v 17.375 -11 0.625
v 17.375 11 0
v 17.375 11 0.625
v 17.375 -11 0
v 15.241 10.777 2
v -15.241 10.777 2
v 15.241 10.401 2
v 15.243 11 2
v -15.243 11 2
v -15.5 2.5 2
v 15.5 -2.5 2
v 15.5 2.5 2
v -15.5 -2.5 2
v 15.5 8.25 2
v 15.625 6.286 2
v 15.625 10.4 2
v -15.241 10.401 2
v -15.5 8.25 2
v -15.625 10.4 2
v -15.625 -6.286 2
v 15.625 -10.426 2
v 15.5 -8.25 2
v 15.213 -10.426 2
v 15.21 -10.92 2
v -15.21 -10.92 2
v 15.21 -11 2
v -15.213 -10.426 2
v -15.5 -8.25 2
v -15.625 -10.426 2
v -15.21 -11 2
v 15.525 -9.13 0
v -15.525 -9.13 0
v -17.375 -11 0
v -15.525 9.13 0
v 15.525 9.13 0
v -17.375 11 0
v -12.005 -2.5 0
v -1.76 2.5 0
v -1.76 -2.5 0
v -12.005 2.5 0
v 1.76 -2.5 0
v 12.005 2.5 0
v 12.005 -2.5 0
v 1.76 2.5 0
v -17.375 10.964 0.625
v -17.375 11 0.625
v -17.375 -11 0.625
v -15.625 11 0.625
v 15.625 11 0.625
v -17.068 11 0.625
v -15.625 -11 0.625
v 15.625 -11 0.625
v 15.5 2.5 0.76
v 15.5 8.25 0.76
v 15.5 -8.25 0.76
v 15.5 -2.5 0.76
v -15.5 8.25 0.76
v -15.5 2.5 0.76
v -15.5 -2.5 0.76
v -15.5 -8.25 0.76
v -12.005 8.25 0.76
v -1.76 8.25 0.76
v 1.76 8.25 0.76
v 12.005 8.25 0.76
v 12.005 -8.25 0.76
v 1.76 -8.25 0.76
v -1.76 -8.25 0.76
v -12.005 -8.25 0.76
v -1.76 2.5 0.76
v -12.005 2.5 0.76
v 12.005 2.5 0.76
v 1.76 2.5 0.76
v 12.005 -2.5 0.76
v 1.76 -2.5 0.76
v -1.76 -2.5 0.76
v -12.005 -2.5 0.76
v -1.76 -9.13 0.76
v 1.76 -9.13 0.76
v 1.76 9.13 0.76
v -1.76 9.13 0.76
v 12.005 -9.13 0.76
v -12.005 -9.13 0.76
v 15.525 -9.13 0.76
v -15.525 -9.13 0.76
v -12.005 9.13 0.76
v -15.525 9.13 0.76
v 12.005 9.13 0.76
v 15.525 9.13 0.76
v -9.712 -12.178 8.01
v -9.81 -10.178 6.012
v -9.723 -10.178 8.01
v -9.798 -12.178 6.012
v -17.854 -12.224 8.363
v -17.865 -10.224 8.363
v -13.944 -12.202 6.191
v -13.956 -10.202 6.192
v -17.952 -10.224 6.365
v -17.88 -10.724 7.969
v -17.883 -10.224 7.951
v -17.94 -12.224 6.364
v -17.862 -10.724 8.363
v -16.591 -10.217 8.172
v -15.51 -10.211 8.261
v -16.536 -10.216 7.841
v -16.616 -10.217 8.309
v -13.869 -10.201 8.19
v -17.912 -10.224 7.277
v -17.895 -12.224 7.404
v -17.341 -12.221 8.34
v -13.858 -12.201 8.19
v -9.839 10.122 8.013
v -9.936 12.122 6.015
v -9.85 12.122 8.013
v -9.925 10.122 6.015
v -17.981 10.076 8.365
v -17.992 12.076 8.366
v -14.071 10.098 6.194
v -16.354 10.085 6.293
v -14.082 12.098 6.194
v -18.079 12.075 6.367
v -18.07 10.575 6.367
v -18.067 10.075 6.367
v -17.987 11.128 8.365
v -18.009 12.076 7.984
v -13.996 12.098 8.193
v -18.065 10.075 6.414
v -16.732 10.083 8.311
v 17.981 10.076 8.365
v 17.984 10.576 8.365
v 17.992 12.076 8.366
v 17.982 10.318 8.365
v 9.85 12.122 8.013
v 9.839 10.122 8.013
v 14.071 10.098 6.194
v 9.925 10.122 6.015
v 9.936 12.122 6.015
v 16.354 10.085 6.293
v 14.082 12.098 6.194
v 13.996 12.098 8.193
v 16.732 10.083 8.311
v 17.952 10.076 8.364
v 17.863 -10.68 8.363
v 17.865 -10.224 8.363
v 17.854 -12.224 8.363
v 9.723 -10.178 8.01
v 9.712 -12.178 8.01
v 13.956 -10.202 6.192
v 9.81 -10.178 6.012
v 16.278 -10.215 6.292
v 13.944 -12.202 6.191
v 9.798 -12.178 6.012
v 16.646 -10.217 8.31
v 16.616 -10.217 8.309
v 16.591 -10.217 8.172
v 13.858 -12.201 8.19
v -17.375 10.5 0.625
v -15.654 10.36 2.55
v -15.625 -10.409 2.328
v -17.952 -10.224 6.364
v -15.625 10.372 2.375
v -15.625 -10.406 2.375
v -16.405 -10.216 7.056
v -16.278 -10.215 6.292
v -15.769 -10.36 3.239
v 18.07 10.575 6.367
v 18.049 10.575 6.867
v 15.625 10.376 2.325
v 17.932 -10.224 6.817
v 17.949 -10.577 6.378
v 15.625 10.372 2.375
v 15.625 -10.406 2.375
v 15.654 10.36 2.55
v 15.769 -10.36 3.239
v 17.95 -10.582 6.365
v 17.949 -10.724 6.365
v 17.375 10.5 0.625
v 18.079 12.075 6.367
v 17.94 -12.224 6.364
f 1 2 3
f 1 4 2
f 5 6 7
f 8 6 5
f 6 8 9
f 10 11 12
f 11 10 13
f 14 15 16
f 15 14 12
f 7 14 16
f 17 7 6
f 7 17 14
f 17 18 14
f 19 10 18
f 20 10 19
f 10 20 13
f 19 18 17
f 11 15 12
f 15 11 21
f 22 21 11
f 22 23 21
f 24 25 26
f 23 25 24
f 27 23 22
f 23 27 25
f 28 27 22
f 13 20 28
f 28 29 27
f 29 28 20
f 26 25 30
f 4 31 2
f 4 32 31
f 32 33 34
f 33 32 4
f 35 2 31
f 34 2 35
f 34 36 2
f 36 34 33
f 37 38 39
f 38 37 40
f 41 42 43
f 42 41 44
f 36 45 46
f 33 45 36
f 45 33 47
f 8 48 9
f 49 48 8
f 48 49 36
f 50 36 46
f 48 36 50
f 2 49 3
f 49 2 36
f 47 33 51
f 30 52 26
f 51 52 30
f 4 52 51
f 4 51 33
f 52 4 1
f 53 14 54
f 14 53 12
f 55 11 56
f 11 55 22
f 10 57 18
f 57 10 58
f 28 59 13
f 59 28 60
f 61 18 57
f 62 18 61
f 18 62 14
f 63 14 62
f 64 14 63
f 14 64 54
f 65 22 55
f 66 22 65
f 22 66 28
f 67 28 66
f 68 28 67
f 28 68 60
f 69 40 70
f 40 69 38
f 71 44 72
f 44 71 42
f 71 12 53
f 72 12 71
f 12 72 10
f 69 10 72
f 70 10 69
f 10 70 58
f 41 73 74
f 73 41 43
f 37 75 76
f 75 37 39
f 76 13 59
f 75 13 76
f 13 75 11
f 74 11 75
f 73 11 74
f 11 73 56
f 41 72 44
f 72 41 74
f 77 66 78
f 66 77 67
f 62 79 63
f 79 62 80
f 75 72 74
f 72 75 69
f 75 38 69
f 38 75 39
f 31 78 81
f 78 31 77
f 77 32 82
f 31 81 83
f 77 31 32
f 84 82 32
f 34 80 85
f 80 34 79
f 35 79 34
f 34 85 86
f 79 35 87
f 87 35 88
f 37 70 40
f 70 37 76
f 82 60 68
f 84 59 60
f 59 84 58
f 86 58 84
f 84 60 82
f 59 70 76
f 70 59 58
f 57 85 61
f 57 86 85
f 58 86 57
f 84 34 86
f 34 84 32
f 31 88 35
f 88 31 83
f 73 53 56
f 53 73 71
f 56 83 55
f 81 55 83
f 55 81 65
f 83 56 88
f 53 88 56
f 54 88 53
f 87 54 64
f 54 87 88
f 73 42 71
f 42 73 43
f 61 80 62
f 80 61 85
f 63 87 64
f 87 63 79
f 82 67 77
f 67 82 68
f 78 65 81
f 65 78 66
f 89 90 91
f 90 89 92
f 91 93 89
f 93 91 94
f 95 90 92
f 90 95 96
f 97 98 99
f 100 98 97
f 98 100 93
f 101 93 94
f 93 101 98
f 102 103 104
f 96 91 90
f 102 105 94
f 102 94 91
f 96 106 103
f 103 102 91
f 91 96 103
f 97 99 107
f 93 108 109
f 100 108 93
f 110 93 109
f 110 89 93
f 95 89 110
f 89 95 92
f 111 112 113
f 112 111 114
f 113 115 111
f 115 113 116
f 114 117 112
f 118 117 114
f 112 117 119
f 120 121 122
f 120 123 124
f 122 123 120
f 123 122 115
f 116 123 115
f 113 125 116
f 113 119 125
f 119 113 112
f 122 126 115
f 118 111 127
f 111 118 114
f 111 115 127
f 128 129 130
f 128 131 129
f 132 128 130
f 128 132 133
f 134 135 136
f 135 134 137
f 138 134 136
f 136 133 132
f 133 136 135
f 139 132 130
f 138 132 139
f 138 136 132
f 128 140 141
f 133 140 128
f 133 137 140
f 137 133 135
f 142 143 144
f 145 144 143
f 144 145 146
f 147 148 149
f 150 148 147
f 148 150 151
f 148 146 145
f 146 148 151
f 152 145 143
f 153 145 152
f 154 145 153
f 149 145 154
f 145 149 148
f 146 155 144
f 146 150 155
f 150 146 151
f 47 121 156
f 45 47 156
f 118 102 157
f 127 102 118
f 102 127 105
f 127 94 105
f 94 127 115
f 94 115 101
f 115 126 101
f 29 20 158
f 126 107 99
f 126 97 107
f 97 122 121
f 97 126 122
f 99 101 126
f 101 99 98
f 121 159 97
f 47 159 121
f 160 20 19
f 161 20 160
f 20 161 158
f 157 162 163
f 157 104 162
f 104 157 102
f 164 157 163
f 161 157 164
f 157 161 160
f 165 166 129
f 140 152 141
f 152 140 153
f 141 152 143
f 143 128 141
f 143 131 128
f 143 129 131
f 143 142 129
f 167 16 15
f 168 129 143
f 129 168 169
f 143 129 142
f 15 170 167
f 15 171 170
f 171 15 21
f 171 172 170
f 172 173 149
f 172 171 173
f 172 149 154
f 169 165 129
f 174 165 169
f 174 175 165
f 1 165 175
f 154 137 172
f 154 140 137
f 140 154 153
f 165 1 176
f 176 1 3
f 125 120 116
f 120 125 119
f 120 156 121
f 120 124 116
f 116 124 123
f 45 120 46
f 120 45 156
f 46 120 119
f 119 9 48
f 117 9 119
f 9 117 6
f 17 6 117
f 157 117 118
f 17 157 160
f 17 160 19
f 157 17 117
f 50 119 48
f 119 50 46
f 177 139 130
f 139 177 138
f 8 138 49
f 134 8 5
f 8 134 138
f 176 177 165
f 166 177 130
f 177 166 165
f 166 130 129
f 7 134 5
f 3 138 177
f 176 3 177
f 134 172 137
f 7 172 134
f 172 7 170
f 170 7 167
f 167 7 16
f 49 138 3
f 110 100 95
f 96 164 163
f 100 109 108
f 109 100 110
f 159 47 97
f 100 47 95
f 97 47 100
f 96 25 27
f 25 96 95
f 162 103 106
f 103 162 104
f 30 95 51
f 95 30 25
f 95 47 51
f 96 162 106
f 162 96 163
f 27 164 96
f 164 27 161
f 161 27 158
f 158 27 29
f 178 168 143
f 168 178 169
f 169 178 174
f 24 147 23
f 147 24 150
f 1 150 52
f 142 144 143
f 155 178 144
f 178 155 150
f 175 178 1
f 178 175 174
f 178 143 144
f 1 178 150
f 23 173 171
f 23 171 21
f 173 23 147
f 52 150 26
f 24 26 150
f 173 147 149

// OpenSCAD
// file: ../scad-utils/so3.scad
// so3

use <linalg.scad>

function rodrigues_so3_exp(w, A, B) = [
[1.0 - B*(w[1]*w[1] + w[2]*w[2]), B*(w[0]*w[1]) - A*w[2],          B*(w[0]*w[2]) + A*w[1]],
[B*(w[0]*w[1]) + A*w[2],          1.0 - B*(w[0]*w[0] + w[2]*w[2]), B*(w[1]*w[2]) - A*w[0]],
[B*(w[0]*w[2]) - A*w[1],          B*(w[1]*w[2]) + A*w[0],          1.0 - B*(w[0]*w[0] + w[1]*w[1])]
];

function so3_exp(w) = so3_exp_rad(w/180*PI);
function so3_exp_rad(w) =
combine_so3_exp(w,
	w*w < 1e-8 
	? so3_exp_1(w*w)
	: w*w < 1e-6
	  ? so3_exp_2(w*w)
	  : so3_exp_3(w*w));

function combine_so3_exp(w,AB) = rodrigues_so3_exp(w,AB[0],AB[1]);

// Taylor series expansions close to 0
function so3_exp_1(theta_sq) = [
	1 - 1/6*theta_sq, 
	0.5
];

function so3_exp_2(theta_sq) = [
	1.0 - theta_sq * (1.0 - theta_sq/20) / 6,
	0.5 - 0.25/6 * theta_sq
];

function so3_exp_3_0(theta_deg, inv_theta) = [
	sin(theta_deg) * inv_theta,
	(1 - cos(theta_deg)) * (inv_theta * inv_theta)
];

function so3_exp_3(theta_sq) = so3_exp_3_0(sqrt(theta_sq)*180/PI, 1/sqrt(theta_sq));


function rot_axis_part(m) = [m[2][1] - m[1][2], m[0][2] - m[2][0], m[1][0] - m[0][1]]*0.5;

function so3_ln(m) = 180/PI*so3_ln_rad(m);
function so3_ln_rad(m) = so3_ln_0(m,
	cos_angle = rot_cos_angle(m),
	preliminary_result = rot_axis_part(m));

function so3_ln_0(m, cos_angle, preliminary_result) = 
so3_ln_1(m, cos_angle, preliminary_result, 
	sin_angle_abs = sqrt(preliminary_result*preliminary_result));

function so3_ln_1(m, cos_angle, preliminary_result, sin_angle_abs) = 
	cos_angle > sqrt(1/2)
	? sin_angle_abs > 0
	  ? preliminary_result * asin(sin_angle_abs)*PI/180 / sin_angle_abs
	  : preliminary_result
	: cos_angle > -sqrt(1/2)
	  ? preliminary_result * acos(cos_angle)*PI/180 / sin_angle_abs
	  : so3_get_symmetric_part_rotation(
	      preliminary_result,
	      m,
	      angle = PI - asin(sin_angle_abs)*PI/180,
	      d0 = m[0][0] - cos_angle,
	      d1 = m[1][1] - cos_angle,
	      d2 = m[2][2] - cos_angle
			);

function so3_get_symmetric_part_rotation(preliminary_result, m, angle, d0, d1, d2) =
so3_get_symmetric_part_rotation_0(preliminary_result,angle,so3_largest_column(m, d0, d1, d2));

function so3_get_symmetric_part_rotation_0(preliminary_result, angle, c_max) =
	angle * unit(c_max * preliminary_result < 0 ? -c_max : c_max);

function so3_largest_column(m, d0, d1, d2) =
		d0*d0 > d1*d1 && d0*d0 > d2*d2
		?	[d0, (m[1][0]+m[0][1])/2, (m[0][2]+m[2][0])/2]
		: d1*d1 > d2*d2
		  ? [(m[1][0]+m[0][1])/2, d1, (m[2][1]+m[1][2])/2]
		  : [(m[0][2]+m[2][0])/2, (m[2][1]+m[1][2])/2, d2];

__so3_test = [12,-125,110];
echo(UNITTEST_so3=norm(__so3_test-so3_ln(so3_exp(__so3_test))) < 1e-8);
// file: ../switch-and-keycap-specs.scad
mx_keyswitch_length = 13.97;
mx_keyhole_length = 14;
mx_switch_travel = 4.0;

xda_keycap_top_height = 15.0;
xda_keycap_width = 18.11;
xda_keycap_depth = 18.11;
xda_keycap_height = 8.5;
xda_keycap_thickness = 1;
xda_top_width = 13.66;
xda_top_depth = 13.66;
xda_top_corner_radius = 1.16;
xda_bottom_corner_radius = 0.57;

choc_switch_travel = 2.18;
choc_keyhole_length = 13.8;
choc_keycap_width = 17.6;
choc_keycap_depth = 16.6;
choc_keycap_height = 3.4;
choc_keycap_top_height = 9;
// file: ../scad-utils/lists.scad
// List helpers

/*!
  Flattens a list one level:

  flatten([[0,1],[2,3]]) => [0,1,2,3]
*/
function flatten(list) = [ for (i = list, v = i) v ];


/*!
  Creates a list from a range:

  range([0:2:6]) => [0,2,4,6]
*/
function range(r) = [ for(x=r) x ];

/*!
  Reverses a list:

  reverse([1,2,3]) => [3,2,1]
*/
function reverse(list) = [for (i = [len(list)-1:-1:0]) list[i]];

/*!
  Extracts a subarray from index begin (inclusive) to end (exclusive)
  FIXME: Change name to use list instead of array?

  subarray([1,2,3,4], 1, 2) => [2,3]
*/
function subarray(list,begin=0,end=-1) = [
    let(end = end < 0 ? len(list) : end)
      for (i = [begin : 1 : end-1])
        list[i]
];

/*!
  Returns a copy of a list with the element at index i set to x

  set([1,2,3,4], 2, 5) => [1,2,5,4]
*/
function set(list, i, x) = [for (i_=[0:len(list)-1]) i == i_ ? x : list[i_]];

/*!
  Remove element from the list by index.
  remove([4,3,2,1],1) => [4,2,1]
*/
function remove(list, i) = [for (i_=[0:1:len(list)-2]) list[i_ < i ? i_ : i_ + 1]];
// file: ../scad-utils/se3.scad
use <linalg.scad>
use <so3.scad>

function combine_se3_exp(w, ABt) = construct_Rt(rodrigues_so3_exp(w, ABt[0], ABt[1]), ABt[2]);

// [A,B,t]
function se3_exp_1(t,w) = concat(
	so3_exp_1(w*w),
	[t + 0.5 * cross(w,t)]
);

function se3_exp_2(t,w) = se3_exp_2_0(t,w,w*w);
function se3_exp_2_0(t,w,theta_sq) =
se3_exp_23(
	so3_exp_2(theta_sq),
	C = (1.0 - theta_sq/20) / 6,
	t=t,w=w);

function se3_exp_3(t,w) = se3_exp_3_0(t,w,sqrt(w*w)*180/PI,1/sqrt(w*w));

function se3_exp_3_0(t,w,theta_deg,inv_theta) =
se3_exp_23(
	so3_exp_3_0(theta_deg = theta_deg, inv_theta = inv_theta),
	C = (1 - sin(theta_deg) * inv_theta) * (inv_theta * inv_theta),
	t=t,w=w);

function se3_exp_23(AB,C,t,w) =
[AB[0], AB[1], t + AB[1] * cross(w,t) + C * cross(w,cross(w,t)) ];

function se3_exp(mu) = se3_exp_0(t=take3(mu),w=tail3(mu)/180*PI);

function se3_exp_0(t,w) =
combine_se3_exp(w,
// Evaluate by Taylor expansion when near 0
	w*w < 1e-8
	? se3_exp_1(t,w)
	: w*w < 1e-6
	  ? se3_exp_2(t,w)
	  : se3_exp_3(t,w)
);

function se3_ln(m) = se3_ln_to_deg(se3_ln_rad(m));
function se3_ln_to_deg(v) = concat(take3(v),tail3(v)*180/PI);

function se3_ln_rad(m) = se3_ln_0(m,
	rot = so3_ln_rad(rotation_part(m)));
function se3_ln_0(m,rot) = se3_ln_1(m,rot,
	theta = sqrt(rot*rot));
function se3_ln_1(m,rot,theta) = se3_ln_2(m,rot,theta,
	shtot = theta > 0.00001 ? sin(theta/2*180/PI)/theta : 0.5,
	halfrotator = so3_exp_rad(rot * -.5));
function se3_ln_2(m,rot,theta,shtot,halfrotator) =
concat( (halfrotator * translation_part(m) -
	(theta > 0.001
	? rot * ((translation_part(m) * rot) * (1-2*shtot) / (rot*rot))
	: rot * ((translation_part(m) * rot)/24)
	)) / (2 * shtot), rot);

__se3_test = [20,-40,60,-80,100,-120];
echo(UNITTEST_se3=norm(__se3_test-se3_ln(se3_exp(__se3_test))) < 1e-8);
// file: ../definitions.scad
use <scad-utils/linalg.scad>
use <scad-utils/transformations.scad>
include <switch-and-keycap-specs.scad>

X = [1, 0, 0];
Y = [0, 1, 0];
Z = [0, 0, 1];

switch_type = "choc";
keycap_type = "choc";

keyhole_length = choc_keyhole_length;
keycap_width   = choc_keycap_width;
keycap_depth   = choc_keycap_depth;
keycap_height  = choc_keycap_height;
cap_top_height = choc_keycap_top_height;

plate_thickness = 2.7;
plate_padding = [2.5, 2.5]; // horizontal and vertical padding around switches.
plate_dimensions = [
  keyhole_length + plate_padding.x,
  keyhole_length + plate_padding.y,
  plate_thickness
];

// overall space allotted for each keycap
mount_width = keycap_width + 1;
mount_depth = keycap_depth + 1;

// angle from key-to-key in a column (alpha) and column-to-column (beta)
alpha = 180/12;
beta = 180/36;

finger_row_radius = mount_depth / 2 / sin(alpha/2) + cap_top_height;
finger_column_radius = mount_width / 2 / sin(beta/2) + cap_top_height;
thumb_row_radius = mount_depth / 2 / sin(alpha/2) + cap_top_height;
thumb_column_radius = mount_width / 2 / sin(beta/2) + cap_top_height;

// Per-column offsets for finger keys.
finger_column_offset_index = [0, 0, 0];
finger_column_offset_index_stretch = [0, 0, 0];
finger_column_offset_middle = [0, 2.82, -3.0]; // was moved -4.5
finger_column_offset_ring = [0, 0, 0];
finger_column_offset_pinky = [0, -8, 5.64];
finger_column_offset_pinky_stretch = [0, -8, 5.64];
finger_column_offsets = [
  finger_column_offset_index_stretch,
  finger_column_offset_index,
  finger_column_offset_middle,
  finger_column_offset_ring,
  finger_column_offset_pinky,
  finger_column_offset_pinky_stretch
];

// Per-column selection of keys an their row positions.
// Values here don't need to be integers but they probably should be.
finger_columns = [
  [1, 2, 3],
  [1, 2, 3, 4],
  [1, 2, 3, 4],
  [1, 2, 3, 4],
  [1, 2, 3],
  [1, 2, 3]
];

// Per-column selection of thumb keys and their row positions.
// In this case because of the 2u keys there's need to use fractional values.
thumb_columns = [
  [-.5],
  [-.5, 1],
  [-1, 0, 1]
];

// Thumb overrides specify on a per-colum-index-and-row-index basis:
// * size multiplier (u and h)
// * rotation (in degrees)
// Note: this is only used for thumb keys and doesn't support the ergodox-style
// 1.25u outer pinky-column keys.
thumb_overrides = [
  [0, 0, 1, 2, 90],
  [1, 0, 1, 2, 90]
];

// Between the finger and thumb clusters is a column of LEDs positioned using
// finger key positioning and some additional offset and pivot.
led_transform = rotation([0, -60, 0]) * translation([-6, 0, 0]);

// LED size is used for $u and $h to scale the plate edge/corner pieces for
// easier and positioning.
led_size = 0.52;

// LED positioning is given with [col, row] pairs.
leds = [
  [-0.75, 0.82],
  [-0.75, 1.2],
  [-0.75, 1.58],
  [-0.75, 1.96]
];

// how thick to make the arm/clamp.
// I haven't tried other values as I didn't want to print one that's too weak
// and keep iterating. Wouldn't be a bad idea to render one and throw it into
// Fusion360 or something for finite element analysis, but I'm not an engineer.
desk_arm_thickness = 25;
desk_arm_trunc = 0.8;
desk_arm_radius = (desk_arm_thickness / 2) / desk_arm_trunc;

// These measurements are specific to the ball mount I bought.
ball_mount_diameter = 28.44;
ball_mount_height = 23.98;

// How thick to make the walls of the cylinder that the ball mount slides into.
// The desk arm actually screws into the ball mount base so this probably isn't
// adding to print strength at all.
ball_mount_socket_thickness = 3;

// What orientation should the ball mount have in the desk arm's socket.
// Tilting this gives you more clearance from the desk arm, but pay attention to
// your print orientation to ensure torque applied to the ball mount doesn't act
// on layer weakness.
ball_mount_base_orientation = identity4()
  * rotation([0, 0, 90])
  * rotation([50, 0, 0])
  * rotation([0, 0, 180]);

// What orientation to apply to things attached to the ball mount head.
// This doesn't affect printed parts directly but is useful for visualization.
ball_mount_pivot_orientation = identity4()
 * rotation([0, 30, 0]);

// The precise thickness isn't important if you want to secure the arm with a
// clamp (1/4" bolt). In fact, my preference is to leave a few millimetres of
// clearance so that you can augment your printed parts with grippier material:
// silicone/rubber sheet or even kitchen drawer liners can be used as a softer
// layer to avoid damaging the desk surface.
_DESK_THICKNESS_TURNSTONE_BIVI = 14.99; // my work desk
_DESK_THICKNESS_IKEA_SKARSTA = 22.28;   // my home desk
desk_thickness = _DESK_THICKNESS_IKEA_SKARSTA;
desk_available_depth = 68.98;

// Desired offset from ball mount base to the top (ignoring thickness) of desk.
desk_top_offset = [0, 50, 40];

// Desired offset from keyboard "origin" to bottom mount component.
keyboard_offset = rotation([0, -20, 0]) * translation([30, 5, -6]);

// Look up thumb overrides for given column and row index
function get_overrides (source, colIndex, rowIndex) = (
  let(matches = [
    for(vec=source)
    if (vec[0] == colIndex && vec[1] == rowIndex)
    [ vec[2], vec[3], vec[4] ]
  ])

  len(matches) > 0 ? matches[0] : [1, 1, 0]
);
// file: ../util.scad
_debug_colors = [
  "tomato",
  "peachpuff",
  "rosybrown",
  "yellowgreen",
  "mediumseagreen",
  "skyblue",
  "steelblue",
  "mediumorchid",
  "slategray"
];

module debug(i) {
  if (!is_undef($debug) && $debug != false) {
    color(_debug_colors[i % len(_debug_colors)])
    children();
  } else {
    children();
  }
}

module triangle_hulls() {
  for (i=[0:$children - 3]) {
    debug(i)
    hull() {
      children(i);
      children(i+1);
      children(i+2);
    }
  }
}

module serial_hulls(close=false) {
  for (i=[0:$children-2]) {
    debug(i)
    hull() {
      children(i);
      children(i+1);
    }
  }

  if (close) {
    hull() {
      children(0);
      children($children - 1);
    }
  }
}

module mirror_axes(axes) {
  children();
  for (axis=axes)
    mirror(axis)
      children();
}
// file: ../positioning.scad
use <scad-utils/transformations.scad>
use <scad-utils/linalg.scad>
include <definitions.scad>


module finger_place(column, row) {
  transformation = finger_place_transformation(column, row);
  multmatrix(transformation)
    children();
}

module finger_corner_nw(col, row) { finger_place(col, row) translate([-plate_width/2, plate_height/2, 0]) children(); }
module finger_corner_ne(col, row) { finger_place(col, row) translate([plate_width/2, plate_height/2, 0]) children(); }
module finger_corner_se(col, row) { finger_place(col, row) translate([plate_width/2, -plate_height/2, 0]) children(); }
module finger_corner_sw(col, row) { finger_place(col, row) translate([-plate_width/2, -plate_height/2, 0]) children(); }

module finger_edge_n(col, row) { finger_place(col, row) translate([0, plate_height/2, 0]) children(); }
module finger_edge_e(col, row) { finger_place(col, row) translate([plate_width/2, 0, 0]) children(); }
module finger_edge_s(col, row) { finger_place(col, row) translate([0, -plate_height/2, 0]) children(); }
module finger_edge_w(col, row) { finger_place(col, row) translate([-plate_width/2, 0, 0]) children(); }

function finger_place_transformation(column, row) = (
  let(row_angle = alpha * (2 - row))
  let(column_angle = beta * (2 - column))
  let(column_offset = finger_column_offsets[column])

  translation([0, 0, 13])
  * rotation(beta*3 * Y)
  * translation(column_offset)
  * translation([0, 0, finger_column_radius])
  * rotation(column_angle * Y)
  * translation([0, 0, -finger_column_radius])
  * translation([0, 0, finger_row_radius])
  * rotation(row_angle * X)
  * translation([0, 0, -finger_row_radius])
);

module thumb_place (colIndex, rowIndex) {
  dimensions = get_overrides(thumb_overrides, colIndex, rowIndex);
  $u = dimensions[0];
  $h = dimensions[1];
  $rot = dimensions[2];
  column = colIndex;
  row = thumb_columns[colIndex][rowIndex];

  multmatrix(thumb_place_transformation(column, row))
    children();
}

module thumb_corner_nw(col, row) { thumb_place(col, row) translate([(is_undef($u) ? 1 : $u) * -plate_width/2, (is_undef($h) ? 1 : $h) * plate_height/2, 0]) children(); }
module thumb_corner_ne(col, row) { thumb_place(col, row) translate([(is_undef($u) ? 1 : $u) * plate_width/2, (is_undef($h) ? 1 : $h) * plate_height/2, 0]) children(); }
module thumb_corner_se(col, row) { thumb_place(col, row) translate([(is_undef($u) ? 1 : $u) * plate_width/2, (is_undef($h) ? 1 : $h) * -plate_height/2, 0]) children(); }
module thumb_corner_sw(col, row) { thumb_place(col, row) translate([(is_undef($u) ? 1 : $u) * -plate_width/2, (is_undef($h) ? 1 : $h) * -plate_height/2, 0]) children(); }

module thumb_edge_n(col, row) { $length = is_undef($u) ? 1 : $u * plate_height; thumb_place(col, row) translate([0, (is_undef($h) ? 1 : $h) * plate_height/2, 0]) children(); }
module thumb_edge_e(col, row) { $length = is_undef($h) ? 1 : $h * plate_height; thumb_place(col, row) translate([(is_undef($u) ? 1 : $u) * plate_width/2, 0, 0]) children(); }
module thumb_edge_s(col, row) { $length = is_undef($u) ? 1 : $u * plate_height; thumb_place(col, row) translate([0, (is_undef($h) ? 1 : $h) * -plate_height/2, 0]) children(); }
module thumb_edge_w(col, row) { $length = is_undef($h) ? 1 : $h * plate_height; thumb_place(col, row) translate([(is_undef($u) ? 1 : $u) * -plate_width/2, 0, 0]) children(); }

function thumb_place_transformation (column, row) = (
  let(column_angle = beta * column)
  let(row_angle = alpha * row)

  translation([-52, -45, 40])
  * rotation(axis=alpha * unit([1, 1, 0]))
  * rotation([0, 0, 180 * (.25 - .1875)])
  * translation([mount_width, 0, 0])
  * translation([0, 0, thumb_column_radius])
  * rotation([0, column_angle, 0])
  * translation([0, 0, -thumb_column_radius])
  * translation([0, 0, thumb_row_radius])
  * rotation([row_angle, 0, 0])
  * translation([0, 0, -thumb_row_radius])
);

module place_thumb_keys (columns, rows) {
  for (col=columns, row=rows) {
    if (col != 0 || row != 4) {
      thumb_place(col, row) children();
    }
  }
}
// file: placeholders/ic-socket.scad
module socket(center=false) {
  c = [1, 1, 1] * (is_undef($clearance) ? 0 : $clearance);
  thickness = 3.02;
  rect = [30.55, 17.76, thickness];

  bar = [thickness, 17.76, 2.05];

  translate(center ? [0, 0, 0] : rect/2) {
    color([1,1,1]*.2) {
      translate([0, -(rect.y - thickness) / 2, 0]) cube([rect.x, thickness, rect.z] + c, center=true);
      translate([0, (rect.y - thickness)/2, 0]) cube([rect.x, thickness, rect.z] + c, center=true);

      translate([0, 0, (-rect.z + bar.z)/2]) {
        cube(bar + c, center=true);
        translate([-(rect.x - bar.x)/2, 0, 0]) cube(bar + c, center=true);
        translate([(rect.x - bar.x)/2, 0, 0]) cube(bar + c, center=true);
      }
    }

    translate(-[rect.x, 0, rect.z]/2)
    color("silver") {
      for (i=[1:12]) {
        translate([2.54 * (i - .5), 15.28/2, rect.z]) cube([0.64, 0.64, 0.1] + c, center=true);
        translate([2.54 * (i - .5), 15.28/2, -1.98/2]) cube([0.64, 0.64, 1.98] + c, center=true);
        translate([2.54 * (i - .5), 15.28/2, -4.57/2]) cube([0.30, 0.30, 4.57] + c, center=true);

        translate([2.54 * (i - .5), -15.28/2, rect.z]) cube([0.64, 0.64, 0.1] + c, center=true);
        translate([2.54 * (i - .5), -15.28/2, -1.98/2]) cube([0.64, 0.64, 1.98] + c, center=true);
        translate([2.54 * (i - .5), -15.28/2, -4.57/2]) cube([0.30, 0.30, 4.57] + c, center=true);
      }
    }
  }
}
// file: ../scad-utils/transformations.scad
use <se3.scad>
use <linalg.scad>
use <lists.scad>

/*!
  Creates a rotation matrix

  xyz = euler angles = rz * ry * rx
  axis = rotation_axis * rotation_angle
*/
function rotation(xyz=undef, axis=undef) = 
	xyz != undef && axis != undef ? undef :
	xyz == undef  ? se3_exp([0,0,0,axis[0],axis[1],axis[2]]) :
	len(xyz) == undef ? rotation(axis=[0,0,xyz]) :
	(len(xyz) >= 3 ? rotation(axis=[0,0,xyz[2]]) : identity4()) *
	(len(xyz) >= 2 ? rotation(axis=[0,xyz[1],0]) : identity4()) *
	(len(xyz) >= 1 ? rotation(axis=[xyz[0],0,0]) : identity4());

/*!
  Creates a scaling matrix
*/
function scaling(v) = [
	[v[0],0,0,0],
	[0,v[1],0,0],
	[0,0,v[2],0],
	[0,0,0,1],
];

/*!
  Creates a translation matrix
*/
function translation(v) = [
	[1,0,0,v[0]],
	[0,1,0,v[1]],
	[0,0,1,v[2]],
	[0,0,0,1],
];

// Convert between cartesian and homogenous coordinates
function project(x) = subarray(x,end=len(x)-1) / x[len(x)-1];

function transform(m, list) = [for (p=list) project(m * vec4(p))];
function to_3d(list) = [ for(v = list) vec3(v) ];
// file: ../scad-utils/linalg.scad
// very minimal set of linalg functions needed by so3, se3 etc.

// cross and norm are builtins
//function cross(x,y) = [x[1]*y[2]-x[2]*y[1], x[2]*y[0]-x[0]*y[2], x[0]*y[1]-x[1]*y[0]];
//function norm(v) = sqrt(v*v);

function vec3(p) = len(p) < 3 ? concat(p,0) : p;
function vec4(p) = let (v3=vec3(p)) len(v3) < 4 ? concat(v3,1) : v3;
function unit(v) = v/norm(v);

function identity3()=[[1,0,0],[0,1,0],[0,0,1]]; 
function identity4()=[[1,0,0,0],[0,1,0,0],[0,0,1,0],[0,0,0,1]];


function take3(v) = [v[0],v[1],v[2]];
function tail3(v) = [v[3],v[4],v[5]];
function rotation_part(m) = [take3(m[0]),take3(m[1]),take3(m[2])];
function rot_trace(m) = m[0][0] + m[1][1] + m[2][2];
function rot_cos_angle(m) = (rot_trace(m)-1)/2;

function rotation_part(m) = [take3(m[0]),take3(m[1]),take3(m[2])];
function translation_part(m) = [m[0][3],m[1][3],m[2][3]];
function transpose_3(m) = [[m[0][0],m[1][0],m[2][0]],[m[0][1],m[1][1],m[2][1]],[m[0][2],m[1][2],m[2][2]]];
function transpose_4(m) = [[m[0][0],m[1][0],m[2][0],m[3][0]],
                           [m[0][1],m[1][1],m[2][1],m[3][1]],
                           [m[0][2],m[1][2],m[2][2],m[3][2]],
                           [m[0][3],m[1][3],m[2][3],m[3][3]]]; 
function invert_rt(m) = construct_Rt(transpose_3(rotation_part(m)), -(transpose_3(rotation_part(m)) * translation_part(m)));
function construct_Rt(R,t) = [concat(R[0],t[0]),concat(R[1],t[1]),concat(R[2],t[2]),[0,0,0,1]];

// Hadamard product of n-dimensional arrays
function hadamard(a,b) = !(len(a)>0) ? a*b : [ for(i = [0:len(a)-1]) hadamard(a[i],b[i]) ];
// main file
use <../scad-utils/linalg.scad>
use <../scad-utils/transformations.scad>
use <placeholders/ic-socket.scad>
use <../positioning.scad>
use <../positioning-transformations.scad>
use <../util.scad>
include <../definitions.scad>

mount_top_height = 9.5 + 1;

module pcb_socket_mount() {
  multmatrix(thumb_place_transformation(0.5, -0.5))
  translate([0, 0, -9.5]) {
    difference() {
      union() {
        difference() {
          cube([34.75, 22, 2], center=true);
          cube([31, 16.5, 4], center=true);
        }

        translate([0, 0, 0])
        cube([34.75, 5, 2], center=true);
      }

      translate([0, 0, -2])
      rotate([180, 0, 0])
        socket(center=true, $clearance=0.5);
    }

    translate([0, 0, -2])
    rotate([180, 0, 0])
      children();
  }

  multmatrix(thumb_place_transformation(1, -0.5))
  mirror_axes([[0, 1, 0]])
  translate(-[
    plate_dimensions.x / 4,
    plate_dimensions.y / 2 + 3,
    plate_dimensions.z + 1
  ])
    cube([plate_dimensions.x/2, 2, 2], center=true);

  multmatrix(thumb_place_transformation(0, -0.5))
  mirror_axes([[0, 1, 0]])
  translate([
    plate_dimensions.x / 4,
    plate_dimensions.y / 2 + 3,
    -plate_dimensions.z - 1
  ])
    cube([plate_dimensions.x/2, 2, 2], center=true);

  hull() {
    multmatrix(thumb_place_transformation(1, -0.5)) translate([0, 0, -plate_thickness]) translate([-(keyhole_length+plate_padding.x/2)/2, 0, -1]) cube([plate_padding.x/2, plate_dimensions.y+5, 2], center=true);
    multmatrix(thumb_place_transformation(0.5, -0.5)) translate([0, 0, -10]) translate([-33/2, 0, 1]) cube([1.75, 22, 1.75], center=true);
  }
  hull() {
    multmatrix(thumb_place_transformation(0, -0.5)) translate([0, 0, -plate_thickness]) translate([(keyhole_length+plate_padding.x/2)/2, 0, -1]) cube([plate_padding.x/2, plate_dimensions.y+5, 2], center=true);
    multmatrix(thumb_place_transformation(0.5, -0.5)) translate([0, 0, -10]) translate([33/2, 0, 1]) cube([1.75, 22, 1.75], center=true);
  }

  hull() {
    multmatrix(thumb_place_transformation(1, -0.5)) translate([0, 0, -plate_thickness]) translate([-plate_dimensions.x/2+2, plate_dimensions.y/2+3, -1]) cube([4, 2, 2], center=true);
    multmatrix(thumb_place_transformation(0.5, -0.5)) translate([0, 0, -10]) translate([-33/2, (22-0.5)/2, 1]) cube([1.75, 0.5, 1.75], center=true);
  }
  hull() {
    multmatrix(thumb_place_transformation(0, -0.5)) translate([0, 0, -plate_thickness]) translate([plate_dimensions.x/2-2, plate_dimensions.y/2+3, -1]) cube([4, 2, 2], center=true);
    multmatrix(thumb_place_transformation(0.5, -0.5)) translate([0, 0, -10]) translate([33/2, (22-0.5)/2, 1]) cube([1.75, 0.5, 1.75], center=true);
  }

  hull() {
    multmatrix(thumb_place_transformation(1, -0.5)) translate([0, 0, -plate_thickness]) translate([-plate_dimensions.x/2+2, -(plate_dimensions.y/2+3), -1]) cube([4, 2, 2], center=true);
    multmatrix(thumb_place_transformation(0.5, -0.5)) translate([0, 0, -10]) translate([-33/2, -(22-0.5)/2, 1]) cube([1.75, 0.5, 1.75], center=true);
  }
  hull() {
    multmatrix(thumb_place_transformation(0, -0.5)) translate([0, 0, -plate_thickness]) translate([plate_dimensions.x/2-2, -(plate_dimensions.y/2+3), -1]) cube([4, 2, 2], center=true);
    multmatrix(thumb_place_transformation(0.5, -0.5)) translate([0, 0, -10]) translate([33/2, -(22-0.5)/2, 1]) cube([1.75, 0.5, 1.75], center=true);
  }
}


translate([0, 0, mount_top_height])
multmatrix(invert_rt(thumb_place_transformation(0.5, -0.5)))
pcb_socket_mount();
